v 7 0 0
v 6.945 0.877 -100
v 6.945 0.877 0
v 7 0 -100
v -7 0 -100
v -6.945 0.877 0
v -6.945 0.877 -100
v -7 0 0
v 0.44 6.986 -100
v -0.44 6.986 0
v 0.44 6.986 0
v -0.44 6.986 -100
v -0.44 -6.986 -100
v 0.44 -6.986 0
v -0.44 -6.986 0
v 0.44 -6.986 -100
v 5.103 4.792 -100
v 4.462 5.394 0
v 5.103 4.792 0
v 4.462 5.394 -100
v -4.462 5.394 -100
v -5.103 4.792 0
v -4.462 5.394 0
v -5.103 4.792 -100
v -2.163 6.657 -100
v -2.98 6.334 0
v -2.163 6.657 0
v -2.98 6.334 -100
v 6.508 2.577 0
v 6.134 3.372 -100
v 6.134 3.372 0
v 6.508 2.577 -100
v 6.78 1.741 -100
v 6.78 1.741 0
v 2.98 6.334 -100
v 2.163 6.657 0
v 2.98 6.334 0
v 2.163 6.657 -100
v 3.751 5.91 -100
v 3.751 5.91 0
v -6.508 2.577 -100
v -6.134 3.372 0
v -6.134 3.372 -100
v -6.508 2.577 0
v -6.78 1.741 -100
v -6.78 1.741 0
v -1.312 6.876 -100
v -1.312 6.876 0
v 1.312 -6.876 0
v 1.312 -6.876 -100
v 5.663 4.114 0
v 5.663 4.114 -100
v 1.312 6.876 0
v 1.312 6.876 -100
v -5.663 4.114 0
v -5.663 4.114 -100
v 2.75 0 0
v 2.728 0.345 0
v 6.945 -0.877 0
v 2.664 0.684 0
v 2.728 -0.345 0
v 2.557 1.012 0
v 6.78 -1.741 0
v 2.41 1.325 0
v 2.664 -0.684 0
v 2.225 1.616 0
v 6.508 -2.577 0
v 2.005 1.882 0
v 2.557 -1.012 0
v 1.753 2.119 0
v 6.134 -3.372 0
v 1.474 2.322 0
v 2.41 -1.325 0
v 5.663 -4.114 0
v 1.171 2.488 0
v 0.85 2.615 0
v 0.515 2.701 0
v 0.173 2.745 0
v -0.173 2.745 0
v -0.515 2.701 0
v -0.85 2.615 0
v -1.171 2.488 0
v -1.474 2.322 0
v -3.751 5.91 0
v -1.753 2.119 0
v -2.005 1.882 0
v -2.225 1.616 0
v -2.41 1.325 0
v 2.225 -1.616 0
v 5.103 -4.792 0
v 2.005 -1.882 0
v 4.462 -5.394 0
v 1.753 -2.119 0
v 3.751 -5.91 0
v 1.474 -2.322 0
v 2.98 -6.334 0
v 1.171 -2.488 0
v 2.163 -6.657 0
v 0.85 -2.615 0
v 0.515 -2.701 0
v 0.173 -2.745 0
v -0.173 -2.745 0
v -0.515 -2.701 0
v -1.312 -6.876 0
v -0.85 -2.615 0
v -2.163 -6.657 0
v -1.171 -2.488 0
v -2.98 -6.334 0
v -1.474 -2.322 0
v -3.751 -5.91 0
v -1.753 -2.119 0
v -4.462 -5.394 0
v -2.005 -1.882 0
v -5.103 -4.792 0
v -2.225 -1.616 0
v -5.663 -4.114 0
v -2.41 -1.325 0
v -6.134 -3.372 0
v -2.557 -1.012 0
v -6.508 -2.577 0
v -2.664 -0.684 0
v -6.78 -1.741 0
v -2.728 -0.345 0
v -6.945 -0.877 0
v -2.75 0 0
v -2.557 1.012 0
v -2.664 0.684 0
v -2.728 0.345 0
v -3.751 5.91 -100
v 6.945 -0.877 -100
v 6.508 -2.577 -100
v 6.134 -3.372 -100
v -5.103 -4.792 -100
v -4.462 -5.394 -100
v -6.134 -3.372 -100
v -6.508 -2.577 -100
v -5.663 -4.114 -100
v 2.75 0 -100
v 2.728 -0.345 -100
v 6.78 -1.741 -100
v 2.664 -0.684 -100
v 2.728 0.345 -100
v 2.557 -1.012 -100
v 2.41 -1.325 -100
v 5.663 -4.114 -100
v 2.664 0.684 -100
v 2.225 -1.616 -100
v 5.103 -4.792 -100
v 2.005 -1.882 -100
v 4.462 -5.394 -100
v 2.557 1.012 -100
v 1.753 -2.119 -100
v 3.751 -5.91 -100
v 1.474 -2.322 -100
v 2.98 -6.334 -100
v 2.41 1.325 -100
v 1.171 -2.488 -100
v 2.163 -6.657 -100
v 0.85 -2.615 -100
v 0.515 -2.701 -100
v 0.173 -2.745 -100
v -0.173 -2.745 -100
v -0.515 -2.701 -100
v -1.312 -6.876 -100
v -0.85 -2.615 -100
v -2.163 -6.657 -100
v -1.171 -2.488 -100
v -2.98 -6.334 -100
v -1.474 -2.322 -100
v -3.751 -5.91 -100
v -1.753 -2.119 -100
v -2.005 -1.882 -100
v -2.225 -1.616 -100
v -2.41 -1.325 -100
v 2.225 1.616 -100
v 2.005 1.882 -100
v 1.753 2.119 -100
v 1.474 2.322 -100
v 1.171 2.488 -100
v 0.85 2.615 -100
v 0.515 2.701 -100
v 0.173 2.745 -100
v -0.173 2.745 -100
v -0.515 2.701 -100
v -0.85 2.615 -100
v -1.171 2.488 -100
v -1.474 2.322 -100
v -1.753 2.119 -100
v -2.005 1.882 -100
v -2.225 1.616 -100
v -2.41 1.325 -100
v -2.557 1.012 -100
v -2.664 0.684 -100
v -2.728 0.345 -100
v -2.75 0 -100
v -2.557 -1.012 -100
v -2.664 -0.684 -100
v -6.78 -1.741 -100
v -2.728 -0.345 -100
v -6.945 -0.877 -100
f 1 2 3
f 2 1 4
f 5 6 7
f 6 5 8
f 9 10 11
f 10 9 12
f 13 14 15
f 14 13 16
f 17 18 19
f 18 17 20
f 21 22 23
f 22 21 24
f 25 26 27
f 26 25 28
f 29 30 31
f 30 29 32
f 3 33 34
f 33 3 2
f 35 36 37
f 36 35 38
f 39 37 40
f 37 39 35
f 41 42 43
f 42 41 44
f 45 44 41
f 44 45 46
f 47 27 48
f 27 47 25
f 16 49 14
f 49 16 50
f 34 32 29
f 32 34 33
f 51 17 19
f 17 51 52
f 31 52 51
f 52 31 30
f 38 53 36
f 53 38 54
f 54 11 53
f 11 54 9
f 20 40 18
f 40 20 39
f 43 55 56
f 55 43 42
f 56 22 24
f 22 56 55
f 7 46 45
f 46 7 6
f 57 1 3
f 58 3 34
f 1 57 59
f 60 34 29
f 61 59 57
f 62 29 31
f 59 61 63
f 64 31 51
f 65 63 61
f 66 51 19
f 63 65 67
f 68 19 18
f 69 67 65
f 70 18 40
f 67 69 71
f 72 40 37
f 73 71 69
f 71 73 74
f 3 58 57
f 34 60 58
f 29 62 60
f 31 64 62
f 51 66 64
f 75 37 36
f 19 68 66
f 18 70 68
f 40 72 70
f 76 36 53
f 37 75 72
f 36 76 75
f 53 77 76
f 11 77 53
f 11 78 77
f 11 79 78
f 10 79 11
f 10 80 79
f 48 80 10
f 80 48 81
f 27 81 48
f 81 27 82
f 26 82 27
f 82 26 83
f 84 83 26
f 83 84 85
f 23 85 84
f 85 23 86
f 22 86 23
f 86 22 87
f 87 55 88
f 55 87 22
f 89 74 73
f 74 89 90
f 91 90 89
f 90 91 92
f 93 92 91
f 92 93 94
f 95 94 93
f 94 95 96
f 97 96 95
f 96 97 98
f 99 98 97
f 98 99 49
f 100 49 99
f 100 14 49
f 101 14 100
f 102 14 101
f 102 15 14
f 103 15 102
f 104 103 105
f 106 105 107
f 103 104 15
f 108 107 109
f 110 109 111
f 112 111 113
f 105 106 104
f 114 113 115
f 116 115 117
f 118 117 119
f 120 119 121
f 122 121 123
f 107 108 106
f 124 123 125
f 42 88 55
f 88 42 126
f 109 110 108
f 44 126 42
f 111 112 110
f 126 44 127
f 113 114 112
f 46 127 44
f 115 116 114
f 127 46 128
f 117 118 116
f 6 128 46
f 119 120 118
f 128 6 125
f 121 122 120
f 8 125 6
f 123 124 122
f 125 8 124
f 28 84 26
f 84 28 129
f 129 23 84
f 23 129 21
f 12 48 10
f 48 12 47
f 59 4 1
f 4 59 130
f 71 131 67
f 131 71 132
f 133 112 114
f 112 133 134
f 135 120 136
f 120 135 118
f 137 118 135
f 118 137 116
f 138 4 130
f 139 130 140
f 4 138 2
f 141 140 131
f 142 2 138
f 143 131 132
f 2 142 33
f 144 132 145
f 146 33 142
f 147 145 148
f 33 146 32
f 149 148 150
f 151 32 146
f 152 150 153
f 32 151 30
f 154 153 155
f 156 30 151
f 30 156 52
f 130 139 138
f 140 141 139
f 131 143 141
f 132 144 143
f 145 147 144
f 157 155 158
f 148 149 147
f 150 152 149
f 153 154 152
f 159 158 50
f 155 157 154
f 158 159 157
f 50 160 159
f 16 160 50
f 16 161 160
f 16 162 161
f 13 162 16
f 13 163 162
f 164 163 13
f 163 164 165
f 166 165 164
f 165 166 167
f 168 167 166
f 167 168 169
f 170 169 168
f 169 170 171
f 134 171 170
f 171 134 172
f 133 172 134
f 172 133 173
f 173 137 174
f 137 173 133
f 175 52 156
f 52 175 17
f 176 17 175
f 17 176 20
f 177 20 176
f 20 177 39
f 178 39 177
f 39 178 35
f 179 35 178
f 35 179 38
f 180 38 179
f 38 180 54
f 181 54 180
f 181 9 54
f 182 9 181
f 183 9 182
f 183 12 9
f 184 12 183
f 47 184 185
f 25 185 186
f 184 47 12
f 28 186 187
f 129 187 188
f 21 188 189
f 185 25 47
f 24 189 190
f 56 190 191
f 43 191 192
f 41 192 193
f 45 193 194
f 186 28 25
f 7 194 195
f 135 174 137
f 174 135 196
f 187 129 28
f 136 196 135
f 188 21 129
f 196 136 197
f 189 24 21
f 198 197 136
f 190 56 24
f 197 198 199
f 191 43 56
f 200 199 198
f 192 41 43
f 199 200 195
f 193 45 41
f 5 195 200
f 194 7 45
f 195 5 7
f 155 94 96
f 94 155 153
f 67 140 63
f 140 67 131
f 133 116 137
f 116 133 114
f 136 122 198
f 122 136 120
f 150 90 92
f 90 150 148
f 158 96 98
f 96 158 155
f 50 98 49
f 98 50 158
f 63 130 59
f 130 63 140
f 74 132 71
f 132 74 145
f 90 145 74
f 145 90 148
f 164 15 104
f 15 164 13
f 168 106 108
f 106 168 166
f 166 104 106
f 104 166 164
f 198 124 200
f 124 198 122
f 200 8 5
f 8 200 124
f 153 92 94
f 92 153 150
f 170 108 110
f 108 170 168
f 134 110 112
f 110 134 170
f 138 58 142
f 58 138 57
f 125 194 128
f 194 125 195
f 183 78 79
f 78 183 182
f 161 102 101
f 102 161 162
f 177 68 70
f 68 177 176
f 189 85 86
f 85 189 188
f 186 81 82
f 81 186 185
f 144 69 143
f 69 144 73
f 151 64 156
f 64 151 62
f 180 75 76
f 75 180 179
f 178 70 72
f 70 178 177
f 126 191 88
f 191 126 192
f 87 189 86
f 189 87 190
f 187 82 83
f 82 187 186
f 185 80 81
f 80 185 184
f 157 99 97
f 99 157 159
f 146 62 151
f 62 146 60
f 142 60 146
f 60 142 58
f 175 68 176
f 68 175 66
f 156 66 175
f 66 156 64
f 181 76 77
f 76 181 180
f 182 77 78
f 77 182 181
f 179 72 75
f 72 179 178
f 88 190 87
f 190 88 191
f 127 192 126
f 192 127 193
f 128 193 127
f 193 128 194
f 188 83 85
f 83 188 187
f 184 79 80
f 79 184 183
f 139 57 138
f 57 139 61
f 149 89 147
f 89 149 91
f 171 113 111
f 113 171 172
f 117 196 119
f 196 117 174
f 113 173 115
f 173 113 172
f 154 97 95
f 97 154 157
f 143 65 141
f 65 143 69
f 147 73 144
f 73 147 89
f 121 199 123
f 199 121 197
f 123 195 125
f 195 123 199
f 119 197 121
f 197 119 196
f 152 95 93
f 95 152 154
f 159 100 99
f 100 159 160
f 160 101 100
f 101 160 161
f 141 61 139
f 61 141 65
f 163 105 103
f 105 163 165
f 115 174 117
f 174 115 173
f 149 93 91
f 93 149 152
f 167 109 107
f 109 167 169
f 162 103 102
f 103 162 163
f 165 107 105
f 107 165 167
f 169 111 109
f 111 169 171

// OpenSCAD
$fn = 50;


difference() {
	union() {
		translate(v = [0, 0, -100.0000000000]) {
			cylinder(h = 100, r = 7.0000000000);
		}
		cylinder(h = 0, r = 16.0000000000);
	}
	union() {
		#translate(v = [0, 0, -100]) {
			cylinder(h = 100, r = 2.7500000000);
		}
	}
}
